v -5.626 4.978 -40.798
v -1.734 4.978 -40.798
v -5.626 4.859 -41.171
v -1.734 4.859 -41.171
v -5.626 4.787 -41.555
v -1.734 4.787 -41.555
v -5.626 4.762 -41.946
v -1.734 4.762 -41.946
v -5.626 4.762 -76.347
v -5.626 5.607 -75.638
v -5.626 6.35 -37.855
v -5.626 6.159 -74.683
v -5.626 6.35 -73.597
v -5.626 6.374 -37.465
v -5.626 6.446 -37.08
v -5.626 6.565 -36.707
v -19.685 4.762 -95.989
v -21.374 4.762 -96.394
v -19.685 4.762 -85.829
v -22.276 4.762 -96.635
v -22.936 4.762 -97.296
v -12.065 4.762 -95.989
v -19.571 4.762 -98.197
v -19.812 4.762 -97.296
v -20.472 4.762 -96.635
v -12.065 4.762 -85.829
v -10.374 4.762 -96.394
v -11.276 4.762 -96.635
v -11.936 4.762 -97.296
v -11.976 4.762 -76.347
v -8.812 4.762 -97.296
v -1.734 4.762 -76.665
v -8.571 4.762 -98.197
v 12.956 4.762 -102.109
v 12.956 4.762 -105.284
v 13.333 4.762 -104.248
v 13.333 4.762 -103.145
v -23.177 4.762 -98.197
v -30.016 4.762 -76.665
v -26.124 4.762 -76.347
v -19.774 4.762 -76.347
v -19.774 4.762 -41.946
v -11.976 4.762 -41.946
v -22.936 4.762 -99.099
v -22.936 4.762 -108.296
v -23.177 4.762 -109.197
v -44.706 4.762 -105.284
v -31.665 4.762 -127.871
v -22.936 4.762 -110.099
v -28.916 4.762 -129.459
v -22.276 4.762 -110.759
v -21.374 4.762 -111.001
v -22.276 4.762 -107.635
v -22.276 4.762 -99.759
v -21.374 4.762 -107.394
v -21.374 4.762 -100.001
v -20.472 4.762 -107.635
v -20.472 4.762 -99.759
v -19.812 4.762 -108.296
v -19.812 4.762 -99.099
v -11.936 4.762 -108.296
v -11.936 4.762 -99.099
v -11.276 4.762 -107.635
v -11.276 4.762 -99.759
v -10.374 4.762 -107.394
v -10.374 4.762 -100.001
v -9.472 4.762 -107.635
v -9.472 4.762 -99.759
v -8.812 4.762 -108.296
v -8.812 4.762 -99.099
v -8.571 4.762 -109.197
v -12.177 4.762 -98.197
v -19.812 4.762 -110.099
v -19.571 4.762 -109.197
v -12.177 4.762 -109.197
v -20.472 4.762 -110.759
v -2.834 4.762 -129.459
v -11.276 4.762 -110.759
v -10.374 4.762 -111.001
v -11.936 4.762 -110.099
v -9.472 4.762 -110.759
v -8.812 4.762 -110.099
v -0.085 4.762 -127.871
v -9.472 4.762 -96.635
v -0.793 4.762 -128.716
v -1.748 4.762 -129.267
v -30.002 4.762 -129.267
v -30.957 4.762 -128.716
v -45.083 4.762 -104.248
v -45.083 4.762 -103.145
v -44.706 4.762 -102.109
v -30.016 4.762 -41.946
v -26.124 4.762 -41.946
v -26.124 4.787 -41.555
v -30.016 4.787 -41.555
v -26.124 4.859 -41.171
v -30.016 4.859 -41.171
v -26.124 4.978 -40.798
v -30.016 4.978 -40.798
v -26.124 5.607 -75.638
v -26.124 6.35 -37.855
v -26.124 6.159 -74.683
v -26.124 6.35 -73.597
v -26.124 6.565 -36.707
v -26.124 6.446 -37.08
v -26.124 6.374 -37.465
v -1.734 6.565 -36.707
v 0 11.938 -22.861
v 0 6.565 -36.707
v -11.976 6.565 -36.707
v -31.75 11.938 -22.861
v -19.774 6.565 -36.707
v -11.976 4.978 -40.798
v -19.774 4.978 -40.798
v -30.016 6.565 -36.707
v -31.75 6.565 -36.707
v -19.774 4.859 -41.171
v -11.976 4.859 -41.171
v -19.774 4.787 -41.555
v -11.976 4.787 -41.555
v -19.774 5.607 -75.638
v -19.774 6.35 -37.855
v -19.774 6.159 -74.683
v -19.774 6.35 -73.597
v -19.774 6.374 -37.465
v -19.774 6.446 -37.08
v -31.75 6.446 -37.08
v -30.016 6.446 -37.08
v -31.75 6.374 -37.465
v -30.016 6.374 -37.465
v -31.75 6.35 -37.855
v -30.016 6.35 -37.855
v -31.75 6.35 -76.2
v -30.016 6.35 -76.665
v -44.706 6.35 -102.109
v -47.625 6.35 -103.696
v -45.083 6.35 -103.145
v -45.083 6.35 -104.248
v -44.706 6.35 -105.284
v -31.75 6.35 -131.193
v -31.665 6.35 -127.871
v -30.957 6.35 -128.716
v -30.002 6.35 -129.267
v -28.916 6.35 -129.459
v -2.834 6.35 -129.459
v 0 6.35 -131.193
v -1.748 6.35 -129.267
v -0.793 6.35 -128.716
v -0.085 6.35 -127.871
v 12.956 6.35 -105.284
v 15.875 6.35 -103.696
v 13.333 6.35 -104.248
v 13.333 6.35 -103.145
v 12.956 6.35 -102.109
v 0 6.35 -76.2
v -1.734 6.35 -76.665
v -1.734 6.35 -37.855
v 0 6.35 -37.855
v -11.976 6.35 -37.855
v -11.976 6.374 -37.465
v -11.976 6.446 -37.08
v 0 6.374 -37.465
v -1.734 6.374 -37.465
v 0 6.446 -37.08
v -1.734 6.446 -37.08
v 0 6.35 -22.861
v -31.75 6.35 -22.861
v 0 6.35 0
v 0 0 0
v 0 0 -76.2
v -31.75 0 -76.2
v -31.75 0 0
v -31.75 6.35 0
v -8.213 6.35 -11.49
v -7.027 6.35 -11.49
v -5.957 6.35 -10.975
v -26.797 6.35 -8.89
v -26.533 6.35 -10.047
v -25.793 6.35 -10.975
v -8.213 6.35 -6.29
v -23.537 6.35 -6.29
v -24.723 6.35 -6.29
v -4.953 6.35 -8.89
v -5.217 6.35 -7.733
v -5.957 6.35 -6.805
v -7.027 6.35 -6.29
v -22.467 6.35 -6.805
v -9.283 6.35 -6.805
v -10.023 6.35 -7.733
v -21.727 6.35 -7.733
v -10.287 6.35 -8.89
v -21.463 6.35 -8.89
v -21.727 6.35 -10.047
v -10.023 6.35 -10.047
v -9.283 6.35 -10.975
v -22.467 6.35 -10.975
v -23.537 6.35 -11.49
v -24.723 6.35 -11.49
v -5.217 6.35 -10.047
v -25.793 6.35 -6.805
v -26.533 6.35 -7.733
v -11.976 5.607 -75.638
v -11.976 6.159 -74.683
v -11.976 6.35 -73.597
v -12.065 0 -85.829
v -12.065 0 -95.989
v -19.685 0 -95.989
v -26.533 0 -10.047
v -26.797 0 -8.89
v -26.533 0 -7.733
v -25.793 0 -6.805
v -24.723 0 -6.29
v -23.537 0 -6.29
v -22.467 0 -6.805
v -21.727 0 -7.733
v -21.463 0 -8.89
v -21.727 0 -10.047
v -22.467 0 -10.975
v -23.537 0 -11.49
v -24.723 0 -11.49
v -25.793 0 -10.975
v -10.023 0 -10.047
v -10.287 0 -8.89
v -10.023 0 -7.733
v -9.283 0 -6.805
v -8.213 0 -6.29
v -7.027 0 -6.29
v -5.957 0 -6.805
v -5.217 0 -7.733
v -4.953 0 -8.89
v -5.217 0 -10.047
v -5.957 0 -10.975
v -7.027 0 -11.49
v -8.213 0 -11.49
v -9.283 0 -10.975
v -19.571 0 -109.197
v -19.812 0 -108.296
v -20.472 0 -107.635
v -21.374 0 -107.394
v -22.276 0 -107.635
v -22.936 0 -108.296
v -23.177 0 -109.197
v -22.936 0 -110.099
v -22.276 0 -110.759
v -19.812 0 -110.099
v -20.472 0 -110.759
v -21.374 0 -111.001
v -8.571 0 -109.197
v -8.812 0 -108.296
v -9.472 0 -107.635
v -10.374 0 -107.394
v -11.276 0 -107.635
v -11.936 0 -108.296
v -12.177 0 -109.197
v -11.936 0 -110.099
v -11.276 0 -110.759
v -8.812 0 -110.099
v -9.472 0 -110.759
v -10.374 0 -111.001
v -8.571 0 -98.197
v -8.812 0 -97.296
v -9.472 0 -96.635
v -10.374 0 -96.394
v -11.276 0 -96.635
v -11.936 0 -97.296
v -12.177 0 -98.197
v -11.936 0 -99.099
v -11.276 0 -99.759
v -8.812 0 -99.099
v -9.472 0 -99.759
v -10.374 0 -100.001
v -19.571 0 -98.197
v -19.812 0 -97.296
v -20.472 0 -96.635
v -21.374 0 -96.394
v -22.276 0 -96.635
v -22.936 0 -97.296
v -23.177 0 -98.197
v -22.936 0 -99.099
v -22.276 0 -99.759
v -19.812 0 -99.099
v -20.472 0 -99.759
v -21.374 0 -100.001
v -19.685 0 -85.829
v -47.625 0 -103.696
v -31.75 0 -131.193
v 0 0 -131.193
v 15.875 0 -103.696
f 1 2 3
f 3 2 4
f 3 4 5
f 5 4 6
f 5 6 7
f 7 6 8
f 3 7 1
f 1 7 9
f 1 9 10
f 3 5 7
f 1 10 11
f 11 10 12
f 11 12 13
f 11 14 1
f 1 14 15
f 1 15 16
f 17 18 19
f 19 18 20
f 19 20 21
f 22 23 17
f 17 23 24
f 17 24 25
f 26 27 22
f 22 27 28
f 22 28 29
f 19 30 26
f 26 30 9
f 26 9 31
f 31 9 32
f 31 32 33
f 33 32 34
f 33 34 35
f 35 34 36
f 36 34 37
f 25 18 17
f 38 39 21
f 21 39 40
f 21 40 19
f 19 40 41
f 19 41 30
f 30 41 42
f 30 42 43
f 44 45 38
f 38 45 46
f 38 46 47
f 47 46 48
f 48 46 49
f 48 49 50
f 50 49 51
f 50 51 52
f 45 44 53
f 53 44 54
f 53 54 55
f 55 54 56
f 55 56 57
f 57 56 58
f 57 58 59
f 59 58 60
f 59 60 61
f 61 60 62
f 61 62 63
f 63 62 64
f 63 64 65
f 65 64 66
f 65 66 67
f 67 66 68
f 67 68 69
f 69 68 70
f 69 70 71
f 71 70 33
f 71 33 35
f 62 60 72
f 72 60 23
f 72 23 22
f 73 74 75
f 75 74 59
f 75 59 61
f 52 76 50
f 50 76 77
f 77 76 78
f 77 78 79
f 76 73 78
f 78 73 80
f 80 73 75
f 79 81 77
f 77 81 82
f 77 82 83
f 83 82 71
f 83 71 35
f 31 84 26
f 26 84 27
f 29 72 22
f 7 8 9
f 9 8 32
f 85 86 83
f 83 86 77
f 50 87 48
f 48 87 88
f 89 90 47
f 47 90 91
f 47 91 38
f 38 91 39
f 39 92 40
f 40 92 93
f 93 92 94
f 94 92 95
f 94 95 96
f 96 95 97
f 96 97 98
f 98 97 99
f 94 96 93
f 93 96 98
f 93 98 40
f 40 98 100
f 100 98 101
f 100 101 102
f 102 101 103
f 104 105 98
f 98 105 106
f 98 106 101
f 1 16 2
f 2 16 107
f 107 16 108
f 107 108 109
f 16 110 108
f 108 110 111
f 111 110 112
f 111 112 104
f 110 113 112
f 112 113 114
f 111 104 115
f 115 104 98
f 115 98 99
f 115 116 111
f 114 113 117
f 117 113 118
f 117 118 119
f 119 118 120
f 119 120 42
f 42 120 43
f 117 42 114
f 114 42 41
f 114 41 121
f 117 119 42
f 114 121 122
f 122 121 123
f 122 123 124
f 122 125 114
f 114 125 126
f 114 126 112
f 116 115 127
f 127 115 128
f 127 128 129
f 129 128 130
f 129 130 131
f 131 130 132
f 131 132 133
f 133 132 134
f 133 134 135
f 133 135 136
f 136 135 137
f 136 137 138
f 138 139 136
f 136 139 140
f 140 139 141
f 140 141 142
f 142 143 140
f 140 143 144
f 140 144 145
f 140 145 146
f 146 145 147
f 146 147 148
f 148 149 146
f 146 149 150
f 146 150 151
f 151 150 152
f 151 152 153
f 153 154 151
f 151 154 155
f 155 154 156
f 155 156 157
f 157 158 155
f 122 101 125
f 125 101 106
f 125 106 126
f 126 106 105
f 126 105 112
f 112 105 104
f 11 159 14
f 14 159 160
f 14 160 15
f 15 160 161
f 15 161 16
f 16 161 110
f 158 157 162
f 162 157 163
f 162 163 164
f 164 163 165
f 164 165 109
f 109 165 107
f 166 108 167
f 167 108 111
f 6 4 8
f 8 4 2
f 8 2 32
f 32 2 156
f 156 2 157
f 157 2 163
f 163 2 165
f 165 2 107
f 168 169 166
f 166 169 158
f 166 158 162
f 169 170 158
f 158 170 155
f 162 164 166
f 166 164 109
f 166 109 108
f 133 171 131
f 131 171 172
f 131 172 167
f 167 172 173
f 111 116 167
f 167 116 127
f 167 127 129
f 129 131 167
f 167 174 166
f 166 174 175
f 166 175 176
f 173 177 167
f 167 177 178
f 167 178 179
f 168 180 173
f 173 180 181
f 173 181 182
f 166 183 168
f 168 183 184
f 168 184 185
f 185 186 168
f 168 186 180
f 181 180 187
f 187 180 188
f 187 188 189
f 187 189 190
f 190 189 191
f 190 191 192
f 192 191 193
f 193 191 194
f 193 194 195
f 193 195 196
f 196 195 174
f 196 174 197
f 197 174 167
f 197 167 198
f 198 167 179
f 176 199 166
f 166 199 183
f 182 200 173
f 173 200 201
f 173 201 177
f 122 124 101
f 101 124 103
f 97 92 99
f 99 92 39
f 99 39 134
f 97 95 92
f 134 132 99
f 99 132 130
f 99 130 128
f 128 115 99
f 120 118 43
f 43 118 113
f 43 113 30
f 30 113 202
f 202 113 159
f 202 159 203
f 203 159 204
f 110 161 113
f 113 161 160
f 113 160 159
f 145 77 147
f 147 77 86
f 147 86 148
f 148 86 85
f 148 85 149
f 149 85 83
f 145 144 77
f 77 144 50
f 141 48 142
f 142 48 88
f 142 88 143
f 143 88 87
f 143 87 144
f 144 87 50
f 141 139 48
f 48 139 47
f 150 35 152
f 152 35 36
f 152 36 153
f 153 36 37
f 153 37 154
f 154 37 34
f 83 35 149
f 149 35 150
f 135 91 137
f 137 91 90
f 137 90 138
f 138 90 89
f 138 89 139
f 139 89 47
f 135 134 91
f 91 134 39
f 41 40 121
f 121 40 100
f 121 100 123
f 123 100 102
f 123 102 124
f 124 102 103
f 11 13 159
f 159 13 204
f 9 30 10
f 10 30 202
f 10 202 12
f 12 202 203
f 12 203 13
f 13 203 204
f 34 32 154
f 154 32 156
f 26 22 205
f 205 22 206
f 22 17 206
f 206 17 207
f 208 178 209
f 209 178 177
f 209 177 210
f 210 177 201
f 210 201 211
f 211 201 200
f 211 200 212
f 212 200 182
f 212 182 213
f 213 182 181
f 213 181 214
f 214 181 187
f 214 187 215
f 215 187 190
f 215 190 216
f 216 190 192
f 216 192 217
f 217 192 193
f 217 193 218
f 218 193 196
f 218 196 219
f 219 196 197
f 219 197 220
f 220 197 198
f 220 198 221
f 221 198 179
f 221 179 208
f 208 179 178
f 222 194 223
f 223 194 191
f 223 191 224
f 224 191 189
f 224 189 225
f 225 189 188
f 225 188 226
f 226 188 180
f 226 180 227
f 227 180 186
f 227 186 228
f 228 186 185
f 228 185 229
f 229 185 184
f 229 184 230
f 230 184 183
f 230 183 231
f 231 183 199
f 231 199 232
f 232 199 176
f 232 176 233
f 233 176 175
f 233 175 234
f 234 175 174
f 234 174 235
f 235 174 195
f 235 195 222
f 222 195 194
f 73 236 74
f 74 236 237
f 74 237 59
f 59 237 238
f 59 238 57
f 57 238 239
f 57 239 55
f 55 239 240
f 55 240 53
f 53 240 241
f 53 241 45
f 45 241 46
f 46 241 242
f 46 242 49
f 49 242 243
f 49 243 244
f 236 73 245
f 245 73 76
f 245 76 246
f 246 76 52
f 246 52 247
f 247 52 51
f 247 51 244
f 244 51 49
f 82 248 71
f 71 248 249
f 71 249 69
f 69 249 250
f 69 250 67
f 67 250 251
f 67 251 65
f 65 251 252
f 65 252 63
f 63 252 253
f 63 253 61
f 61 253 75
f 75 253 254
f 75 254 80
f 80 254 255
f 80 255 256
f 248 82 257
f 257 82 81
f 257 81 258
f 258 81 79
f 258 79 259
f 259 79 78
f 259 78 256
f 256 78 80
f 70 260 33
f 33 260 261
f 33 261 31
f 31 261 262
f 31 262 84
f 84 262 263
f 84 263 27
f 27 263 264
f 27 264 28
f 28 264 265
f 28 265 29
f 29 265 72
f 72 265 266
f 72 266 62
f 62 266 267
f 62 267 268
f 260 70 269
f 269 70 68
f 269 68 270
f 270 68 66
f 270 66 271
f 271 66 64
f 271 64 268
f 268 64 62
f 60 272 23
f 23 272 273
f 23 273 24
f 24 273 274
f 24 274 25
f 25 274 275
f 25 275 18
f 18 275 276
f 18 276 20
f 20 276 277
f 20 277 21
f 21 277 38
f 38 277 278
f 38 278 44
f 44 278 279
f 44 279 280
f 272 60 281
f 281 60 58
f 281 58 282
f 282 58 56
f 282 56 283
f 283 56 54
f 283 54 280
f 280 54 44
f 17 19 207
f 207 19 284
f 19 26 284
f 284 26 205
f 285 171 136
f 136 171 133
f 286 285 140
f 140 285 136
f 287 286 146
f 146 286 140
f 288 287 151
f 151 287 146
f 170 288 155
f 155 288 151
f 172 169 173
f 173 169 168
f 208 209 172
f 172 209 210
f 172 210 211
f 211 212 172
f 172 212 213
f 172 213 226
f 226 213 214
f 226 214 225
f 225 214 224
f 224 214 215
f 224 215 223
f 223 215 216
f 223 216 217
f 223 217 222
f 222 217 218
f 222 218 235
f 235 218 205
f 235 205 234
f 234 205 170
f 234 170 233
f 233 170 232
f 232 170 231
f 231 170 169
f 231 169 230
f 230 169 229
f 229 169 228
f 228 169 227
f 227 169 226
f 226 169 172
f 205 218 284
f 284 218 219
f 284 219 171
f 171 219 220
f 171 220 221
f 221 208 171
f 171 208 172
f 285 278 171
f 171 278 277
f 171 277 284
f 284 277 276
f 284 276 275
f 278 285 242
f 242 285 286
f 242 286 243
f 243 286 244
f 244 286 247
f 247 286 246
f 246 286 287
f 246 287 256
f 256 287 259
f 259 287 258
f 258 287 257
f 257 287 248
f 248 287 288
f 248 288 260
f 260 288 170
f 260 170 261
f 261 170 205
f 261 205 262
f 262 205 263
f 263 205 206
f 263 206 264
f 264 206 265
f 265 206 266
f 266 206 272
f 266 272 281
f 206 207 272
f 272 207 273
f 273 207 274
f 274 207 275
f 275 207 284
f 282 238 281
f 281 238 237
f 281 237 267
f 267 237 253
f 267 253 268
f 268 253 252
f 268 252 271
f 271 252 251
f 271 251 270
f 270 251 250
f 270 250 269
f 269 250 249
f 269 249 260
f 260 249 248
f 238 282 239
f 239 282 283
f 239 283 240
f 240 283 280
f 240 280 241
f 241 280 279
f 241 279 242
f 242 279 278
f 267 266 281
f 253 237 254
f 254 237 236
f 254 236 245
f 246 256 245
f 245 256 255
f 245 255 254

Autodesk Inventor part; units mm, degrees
ref_plane "YZ Plane" through (0, 0, 0) normal (1, 0, 0) x (0, 1, 0)
ref_plane "XZ Plane" through (0, 0, 0) normal (0, 1, 0) x (-1, 0, 0)
ref_plane "XY Plane" through (0, 0, 0) normal (0, 0, 1) x (1, 0, 0)
sketch "Sketch1" plane through (0, 0, 0) normal (0, 1, 0) x (-1, 0, 0)
  line L0 (0, 0) -> (31.75, 0)
  line L1 (31.75, 0) -> (31.75, -76.2)
  line L2 (31.75, -76.2) -> (0, -76.2)
  line L3 (0, -76.2) -> (0, 0)
  line L4 (31.75, -131.1926) -> (0, -131.1926)
  line L5 (0, -131.1926) -> (-15.875, -103.6963)
  line L6 (-15.875, -103.6963) -> (0, -76.2)
  line L7 (0, -76.2) -> (31.75, -76.2)
  line L8 (31.75, -76.2) -> (47.625, -103.6963)
  line L9 (47.625, -103.6963) -> (31.75, -131.1926)
  line L10 (10.3741, -98.1972) -> (21.3741, -98.1972)
  line L11 (21.3741, -98.1972) -> (21.3741, -109.1972)
  line L12 (21.3741, -109.1972) -> (10.3741, -109.1972)
  line L13 (10.3741, -109.1972) -> (10.3741, -98.1972)
  circle A0 centre (21.3741, -98.1972) radius 1.8034
  circle A1 centre (21.3741, -109.1972) radius 1.8034
  circle A2 centre (10.3741, -109.1972) radius 1.8034
  circle A3 centre (10.3741, -98.1972) radius 1.8034
  line L14 (15.875, -131.1926) -> (15.875, -76.2)
  line L15 (47.625, -103.6963) -> (-15.875, -103.6963)
  line L16 (19.685, -85.8288) -> (12.065, -85.8288)
  line L17 (12.065, -85.8288) -> (12.065, -95.9888)
  line L18 (12.065, -95.9888) -> (19.685, -95.9888)
  line L19 (19.685, -95.9888) -> (19.685, -85.8288)
  point P0 (15.875, -103.6963)
  point P1 (15.8741, -98.1972)
  point P2 (31.75, -76.2)
  point P3 (0, -76.2)
  dimension "d0" = 31.75
  dimension "d1" = 76.2
  dimension "d65" = 31.75
  dimension "d66" = 11
  dimension "d67" = 11
  dimension "d68" = 5.4991
  dimension "d69" = 5.4991
  dimension "d70" = 3.6068
  dimension "d71" = 3.6068
  dimension "d72" = 3.6068
  dimension "d73" = 3.6068
  dimension "d94" = 10.16
  dimension "d96" = -1.6909
  dimension "d97" = 7.62
  dimension "d98" = 3.81
extrude "Extrusion1" add sketch "Sketch1" along normal blind 6.35 contours L0 L1 L2 L3 | L2 L14 L16 L17 L18 L10 A3 L13 L15 L6 | L8 L15 L11 A0 L10 L14 L18 L19 L16 L2 | L15 L13 A2 L12 L14 L4 L5 | L9 L4 L14 L12 A1 L11 L15 | L15 L14 L12 A2 L13 | L13 A3 L10 L14 L15 | L15 L14 L10 A0 L11 | L11 A1 L12 L14 L15
sketch "Sketch4" plane through (0, 6.35, 0) normal (0, 1, 0) x (1, 0, 0)
  circle A0 centre (-7.62, 8.89) radius 2.667
  line L0 (-31.75, 0) -> (0, 0) projected
  line L1 (0, 0) -> (0, 76.2) projected
  circle A1 centre (-24.13, 8.89) radius 2.667
  line L2 (-31.75, 76.2) -> (-31.75, 0) projected
  point P0 (0, 127)
  point P1 (-31.75, 127)
  dimension "d11" = 5.334
  dimension "d12" = 8.89
  dimension "d13" = 7.62
  dimension "d14" = 5.334
  dimension "d15" = 8.89
  dimension "d16" = 7.62
extrude "Extrusion4" cut sketch "Sketch4" against normal blind 36.5125
sketch "Sketch8" plane through (0, 6.35, 0) normal (0, 1, 0) x (1, 0, 0)
  circle A0 centre (-10.3741, 98.1972) radius 1.8034 projected
  circle A1 centre (-10.3741, 109.1972) radius 1.8034 projected
  circle A2 centre (-21.3741, 109.1972) radius 1.8034 projected
  circle A3 centre (-21.3741, 98.1972) radius 1.8034 projected
  line L0 (0, 0) -> (0, 76.2) projected
  line L1 (0, 76.2) -> (15.875, 103.6963) projected
  line L2 (15.875, 103.6963) -> (0, 131.1926) projected
  line L3 (0, 131.1926) -> (-31.75, 131.1926) projected
  line L4 (-31.75, 131.1926) -> (-47.625, 103.6963) projected
  line L5 (-47.625, 103.6963) -> (-31.75, 76.2) projected
  line L6 (-31.75, 76.2) -> (-31.75, 0) projected
  line L7 (-30.0159, 27.1341) -> (-1.7341, 27.1341)
  line L8 (-1.7341, 27.1341) -> (-1.7341, 76.6646)
  line L9 (-1.7341, 76.6646) -> (13.8726, 103.6963)
  line L10 (13.8726, 103.6963) -> (-1.0012, 129.4585)
  line L11 (-1.0012, 129.4585) -> (-30.7488, 129.4585)
  line L12 (-30.7488, 129.4585) -> (-45.6226, 103.6963)
  line L13 (-45.6226, 103.6963) -> (-30.0159, 76.6646)
  line L14 (-30.0159, 76.6646) -> (-30.0159, 27.1341)
  line L15 (-31.75, 0) -> (0, 0) projected
extrude "Extrusion7" cut sketch "Sketch8" against normal blind 1.5875 contours L14 L13 L12 L11 L10 L9 L8 L7
sketch "Sketch9" plane through (-1.7341, 6.35, -27.1341) normal (0, 0, -1) x (-1, 0, 0)
  line L0 (0, 0) -> (28.2818, 0) projected
  line L1 (0, 0) -> (0, -1.5875) projected
  line L2 (0, -1.5875) -> (28.2818, -1.5875) projected
  line L3 (28.2818, 0) -> (28.2818, -1.5875) projected
  line L4 (30.0159, 0) -> (-1.7341, 0) projected
  line L5 (14.1409, 0) -> (14.1409, -1.5875)
  line L6 (21.2148, 0) -> (24.3898, 0)
  line L7 (-1.7341, -3.175) -> (30.0159, -3.175) projected
  line L8 (21.2148, 0) -> (18.0398, 0)
  line L9 (18.0398, 0) -> (18.0398, -1.5875)
  line L10 (24.3898, 0) -> (24.3898, -1.5875)
  line L11 (28.2818, 0) -> (0, 0)
  line L12 (-1.7341, 0) -> (30.0159, 0)
  line L13 (7.067, 0) -> (3.892, 0)
  line L14 (7.067, 0) -> (10.242, 0)
  line L15 (10.242, 0) -> (10.242, -1.5875)
  line L16 (3.892, 0) -> (3.892, -1.5875)
  point P0 (-1.7341, -6.35)
  point P1 (14.1409, -0.7937)
  point P2 (3.892, 0)
  point P3 (3.892, -1.5875)
  point P4 (10.242, 0)
  dimension "d79" = 7.0739
  dimension "d80" = 3.175
  dimension "d82" = 3.175
extrude "Extrusion8" add sketch "Sketch9" along normal blind 49.2125 contours L0 L15 L2 L16 | L0 L10 L2 L9
fillet "Fillet2" radius 3.175 2 edges at (-8.8011, 6.35, -76.3466) (-22.9489, 6.35, -76.3466)
fillet "Fillet4" radius 3.175 4 edges at (-45.6226, 5.5562, -103.6963) (13.8726, 5.5562, -103.6963) (-30.7488, 5.5562, -129.4585) (-1.0012, 5.5562, -129.4585)
ref_plane "Work Plane1" through (0, 3.175, 0) normal (0, 1, 0) x (1, 0, 0)
sketch "Sketch11" plane through (0, 3.175, 0) normal (0, 1, 0) x (1, 0, 0)
  line L0 (-0.0667, 22.8993) -> (-31.8167, 22.8612)
  line L1 (0, 25.4) -> (0, 0) projected
  line L2 (-31.75, 25.4) -> (0, 25.4) projected
  line L3 (-31.75, 0) -> (-31.75, 25.4) projected
  line L4 (0, 25.4) -> (-31.75, 25.4)
  line L5 (-31.75, 25.4) -> (-31.75, 22.8613)
  line L6 (-31.75, 22.8613) -> (0, 22.8613)
  line L7 (0, 22.8613) -> (0, 25.4)
extrude "Extrusion9" add sketch "Sketch11" along normal blind 3.175
sketch "Sketch13" plane through (0, 6.35, 0) normal (0, 1, 0) x (1, 0, 0)
  line L0 (-1.1058, 21.2778) -> (-31.081, 21.2778)
  line L1 (-31.081, 21.2778) -> (-31.081, 31.4378)
  line L2 (-31.081, 31.4378) -> (-1.1058, 31.4378)
  line L3 (-1.1058, 31.4378) -> (-1.1058, 21.2778)
  point P0 (0, 0)
  dimension "d99" = 10.16
extrude "Extrusion11" add sketch "Sketch13" against normal blind 3.175
sketch "Sketch14" plane through (-31.75, 0, -76.2) normal (-1, 0, 0) x (0, 0, 1)
  line L0 (44.7622, 6.35) -> (53.3387, 6.35)
  line L1 (0, 6.35) -> (76.2, 6.35) projected
  line L2 (44.7622, 4.7625) -> (-0.1466, 4.7625) projected
  line L3 (44.7622, 6.35) -> (2.603, 6.35) projected
  line L4 (53.3387, 6.35) -> (53.3387, 4.7625)
  line L5 (53.3387, 4.7625) -> (34.8482, 4.7625)
  line L6 (53.3387, 6.35) -> (53.3387, 11.938)
  line L7 (53.3387, 11.938) -> (34.8482, 4.7625)
  point P0 (76.2, 0)
  dimension "d107" = 5.588
extrude "Extrusion12" add sketch "Sketch14" against normal blind 31.75
fillet "Fillet9" radius 3.175 7 edges at (-0.867, 6.35, -37.261) (-8.8011, 6.35, -37.261) (-22.9489, 6.35, -37.261) (-30.883, 6.35, -37.261) (-15.875, 4.7625, -41.3518) (-28.0699, 4.7625, -41.3518) (-3.6801, 4.7625, -41.3518)
properties part number "Arm"
